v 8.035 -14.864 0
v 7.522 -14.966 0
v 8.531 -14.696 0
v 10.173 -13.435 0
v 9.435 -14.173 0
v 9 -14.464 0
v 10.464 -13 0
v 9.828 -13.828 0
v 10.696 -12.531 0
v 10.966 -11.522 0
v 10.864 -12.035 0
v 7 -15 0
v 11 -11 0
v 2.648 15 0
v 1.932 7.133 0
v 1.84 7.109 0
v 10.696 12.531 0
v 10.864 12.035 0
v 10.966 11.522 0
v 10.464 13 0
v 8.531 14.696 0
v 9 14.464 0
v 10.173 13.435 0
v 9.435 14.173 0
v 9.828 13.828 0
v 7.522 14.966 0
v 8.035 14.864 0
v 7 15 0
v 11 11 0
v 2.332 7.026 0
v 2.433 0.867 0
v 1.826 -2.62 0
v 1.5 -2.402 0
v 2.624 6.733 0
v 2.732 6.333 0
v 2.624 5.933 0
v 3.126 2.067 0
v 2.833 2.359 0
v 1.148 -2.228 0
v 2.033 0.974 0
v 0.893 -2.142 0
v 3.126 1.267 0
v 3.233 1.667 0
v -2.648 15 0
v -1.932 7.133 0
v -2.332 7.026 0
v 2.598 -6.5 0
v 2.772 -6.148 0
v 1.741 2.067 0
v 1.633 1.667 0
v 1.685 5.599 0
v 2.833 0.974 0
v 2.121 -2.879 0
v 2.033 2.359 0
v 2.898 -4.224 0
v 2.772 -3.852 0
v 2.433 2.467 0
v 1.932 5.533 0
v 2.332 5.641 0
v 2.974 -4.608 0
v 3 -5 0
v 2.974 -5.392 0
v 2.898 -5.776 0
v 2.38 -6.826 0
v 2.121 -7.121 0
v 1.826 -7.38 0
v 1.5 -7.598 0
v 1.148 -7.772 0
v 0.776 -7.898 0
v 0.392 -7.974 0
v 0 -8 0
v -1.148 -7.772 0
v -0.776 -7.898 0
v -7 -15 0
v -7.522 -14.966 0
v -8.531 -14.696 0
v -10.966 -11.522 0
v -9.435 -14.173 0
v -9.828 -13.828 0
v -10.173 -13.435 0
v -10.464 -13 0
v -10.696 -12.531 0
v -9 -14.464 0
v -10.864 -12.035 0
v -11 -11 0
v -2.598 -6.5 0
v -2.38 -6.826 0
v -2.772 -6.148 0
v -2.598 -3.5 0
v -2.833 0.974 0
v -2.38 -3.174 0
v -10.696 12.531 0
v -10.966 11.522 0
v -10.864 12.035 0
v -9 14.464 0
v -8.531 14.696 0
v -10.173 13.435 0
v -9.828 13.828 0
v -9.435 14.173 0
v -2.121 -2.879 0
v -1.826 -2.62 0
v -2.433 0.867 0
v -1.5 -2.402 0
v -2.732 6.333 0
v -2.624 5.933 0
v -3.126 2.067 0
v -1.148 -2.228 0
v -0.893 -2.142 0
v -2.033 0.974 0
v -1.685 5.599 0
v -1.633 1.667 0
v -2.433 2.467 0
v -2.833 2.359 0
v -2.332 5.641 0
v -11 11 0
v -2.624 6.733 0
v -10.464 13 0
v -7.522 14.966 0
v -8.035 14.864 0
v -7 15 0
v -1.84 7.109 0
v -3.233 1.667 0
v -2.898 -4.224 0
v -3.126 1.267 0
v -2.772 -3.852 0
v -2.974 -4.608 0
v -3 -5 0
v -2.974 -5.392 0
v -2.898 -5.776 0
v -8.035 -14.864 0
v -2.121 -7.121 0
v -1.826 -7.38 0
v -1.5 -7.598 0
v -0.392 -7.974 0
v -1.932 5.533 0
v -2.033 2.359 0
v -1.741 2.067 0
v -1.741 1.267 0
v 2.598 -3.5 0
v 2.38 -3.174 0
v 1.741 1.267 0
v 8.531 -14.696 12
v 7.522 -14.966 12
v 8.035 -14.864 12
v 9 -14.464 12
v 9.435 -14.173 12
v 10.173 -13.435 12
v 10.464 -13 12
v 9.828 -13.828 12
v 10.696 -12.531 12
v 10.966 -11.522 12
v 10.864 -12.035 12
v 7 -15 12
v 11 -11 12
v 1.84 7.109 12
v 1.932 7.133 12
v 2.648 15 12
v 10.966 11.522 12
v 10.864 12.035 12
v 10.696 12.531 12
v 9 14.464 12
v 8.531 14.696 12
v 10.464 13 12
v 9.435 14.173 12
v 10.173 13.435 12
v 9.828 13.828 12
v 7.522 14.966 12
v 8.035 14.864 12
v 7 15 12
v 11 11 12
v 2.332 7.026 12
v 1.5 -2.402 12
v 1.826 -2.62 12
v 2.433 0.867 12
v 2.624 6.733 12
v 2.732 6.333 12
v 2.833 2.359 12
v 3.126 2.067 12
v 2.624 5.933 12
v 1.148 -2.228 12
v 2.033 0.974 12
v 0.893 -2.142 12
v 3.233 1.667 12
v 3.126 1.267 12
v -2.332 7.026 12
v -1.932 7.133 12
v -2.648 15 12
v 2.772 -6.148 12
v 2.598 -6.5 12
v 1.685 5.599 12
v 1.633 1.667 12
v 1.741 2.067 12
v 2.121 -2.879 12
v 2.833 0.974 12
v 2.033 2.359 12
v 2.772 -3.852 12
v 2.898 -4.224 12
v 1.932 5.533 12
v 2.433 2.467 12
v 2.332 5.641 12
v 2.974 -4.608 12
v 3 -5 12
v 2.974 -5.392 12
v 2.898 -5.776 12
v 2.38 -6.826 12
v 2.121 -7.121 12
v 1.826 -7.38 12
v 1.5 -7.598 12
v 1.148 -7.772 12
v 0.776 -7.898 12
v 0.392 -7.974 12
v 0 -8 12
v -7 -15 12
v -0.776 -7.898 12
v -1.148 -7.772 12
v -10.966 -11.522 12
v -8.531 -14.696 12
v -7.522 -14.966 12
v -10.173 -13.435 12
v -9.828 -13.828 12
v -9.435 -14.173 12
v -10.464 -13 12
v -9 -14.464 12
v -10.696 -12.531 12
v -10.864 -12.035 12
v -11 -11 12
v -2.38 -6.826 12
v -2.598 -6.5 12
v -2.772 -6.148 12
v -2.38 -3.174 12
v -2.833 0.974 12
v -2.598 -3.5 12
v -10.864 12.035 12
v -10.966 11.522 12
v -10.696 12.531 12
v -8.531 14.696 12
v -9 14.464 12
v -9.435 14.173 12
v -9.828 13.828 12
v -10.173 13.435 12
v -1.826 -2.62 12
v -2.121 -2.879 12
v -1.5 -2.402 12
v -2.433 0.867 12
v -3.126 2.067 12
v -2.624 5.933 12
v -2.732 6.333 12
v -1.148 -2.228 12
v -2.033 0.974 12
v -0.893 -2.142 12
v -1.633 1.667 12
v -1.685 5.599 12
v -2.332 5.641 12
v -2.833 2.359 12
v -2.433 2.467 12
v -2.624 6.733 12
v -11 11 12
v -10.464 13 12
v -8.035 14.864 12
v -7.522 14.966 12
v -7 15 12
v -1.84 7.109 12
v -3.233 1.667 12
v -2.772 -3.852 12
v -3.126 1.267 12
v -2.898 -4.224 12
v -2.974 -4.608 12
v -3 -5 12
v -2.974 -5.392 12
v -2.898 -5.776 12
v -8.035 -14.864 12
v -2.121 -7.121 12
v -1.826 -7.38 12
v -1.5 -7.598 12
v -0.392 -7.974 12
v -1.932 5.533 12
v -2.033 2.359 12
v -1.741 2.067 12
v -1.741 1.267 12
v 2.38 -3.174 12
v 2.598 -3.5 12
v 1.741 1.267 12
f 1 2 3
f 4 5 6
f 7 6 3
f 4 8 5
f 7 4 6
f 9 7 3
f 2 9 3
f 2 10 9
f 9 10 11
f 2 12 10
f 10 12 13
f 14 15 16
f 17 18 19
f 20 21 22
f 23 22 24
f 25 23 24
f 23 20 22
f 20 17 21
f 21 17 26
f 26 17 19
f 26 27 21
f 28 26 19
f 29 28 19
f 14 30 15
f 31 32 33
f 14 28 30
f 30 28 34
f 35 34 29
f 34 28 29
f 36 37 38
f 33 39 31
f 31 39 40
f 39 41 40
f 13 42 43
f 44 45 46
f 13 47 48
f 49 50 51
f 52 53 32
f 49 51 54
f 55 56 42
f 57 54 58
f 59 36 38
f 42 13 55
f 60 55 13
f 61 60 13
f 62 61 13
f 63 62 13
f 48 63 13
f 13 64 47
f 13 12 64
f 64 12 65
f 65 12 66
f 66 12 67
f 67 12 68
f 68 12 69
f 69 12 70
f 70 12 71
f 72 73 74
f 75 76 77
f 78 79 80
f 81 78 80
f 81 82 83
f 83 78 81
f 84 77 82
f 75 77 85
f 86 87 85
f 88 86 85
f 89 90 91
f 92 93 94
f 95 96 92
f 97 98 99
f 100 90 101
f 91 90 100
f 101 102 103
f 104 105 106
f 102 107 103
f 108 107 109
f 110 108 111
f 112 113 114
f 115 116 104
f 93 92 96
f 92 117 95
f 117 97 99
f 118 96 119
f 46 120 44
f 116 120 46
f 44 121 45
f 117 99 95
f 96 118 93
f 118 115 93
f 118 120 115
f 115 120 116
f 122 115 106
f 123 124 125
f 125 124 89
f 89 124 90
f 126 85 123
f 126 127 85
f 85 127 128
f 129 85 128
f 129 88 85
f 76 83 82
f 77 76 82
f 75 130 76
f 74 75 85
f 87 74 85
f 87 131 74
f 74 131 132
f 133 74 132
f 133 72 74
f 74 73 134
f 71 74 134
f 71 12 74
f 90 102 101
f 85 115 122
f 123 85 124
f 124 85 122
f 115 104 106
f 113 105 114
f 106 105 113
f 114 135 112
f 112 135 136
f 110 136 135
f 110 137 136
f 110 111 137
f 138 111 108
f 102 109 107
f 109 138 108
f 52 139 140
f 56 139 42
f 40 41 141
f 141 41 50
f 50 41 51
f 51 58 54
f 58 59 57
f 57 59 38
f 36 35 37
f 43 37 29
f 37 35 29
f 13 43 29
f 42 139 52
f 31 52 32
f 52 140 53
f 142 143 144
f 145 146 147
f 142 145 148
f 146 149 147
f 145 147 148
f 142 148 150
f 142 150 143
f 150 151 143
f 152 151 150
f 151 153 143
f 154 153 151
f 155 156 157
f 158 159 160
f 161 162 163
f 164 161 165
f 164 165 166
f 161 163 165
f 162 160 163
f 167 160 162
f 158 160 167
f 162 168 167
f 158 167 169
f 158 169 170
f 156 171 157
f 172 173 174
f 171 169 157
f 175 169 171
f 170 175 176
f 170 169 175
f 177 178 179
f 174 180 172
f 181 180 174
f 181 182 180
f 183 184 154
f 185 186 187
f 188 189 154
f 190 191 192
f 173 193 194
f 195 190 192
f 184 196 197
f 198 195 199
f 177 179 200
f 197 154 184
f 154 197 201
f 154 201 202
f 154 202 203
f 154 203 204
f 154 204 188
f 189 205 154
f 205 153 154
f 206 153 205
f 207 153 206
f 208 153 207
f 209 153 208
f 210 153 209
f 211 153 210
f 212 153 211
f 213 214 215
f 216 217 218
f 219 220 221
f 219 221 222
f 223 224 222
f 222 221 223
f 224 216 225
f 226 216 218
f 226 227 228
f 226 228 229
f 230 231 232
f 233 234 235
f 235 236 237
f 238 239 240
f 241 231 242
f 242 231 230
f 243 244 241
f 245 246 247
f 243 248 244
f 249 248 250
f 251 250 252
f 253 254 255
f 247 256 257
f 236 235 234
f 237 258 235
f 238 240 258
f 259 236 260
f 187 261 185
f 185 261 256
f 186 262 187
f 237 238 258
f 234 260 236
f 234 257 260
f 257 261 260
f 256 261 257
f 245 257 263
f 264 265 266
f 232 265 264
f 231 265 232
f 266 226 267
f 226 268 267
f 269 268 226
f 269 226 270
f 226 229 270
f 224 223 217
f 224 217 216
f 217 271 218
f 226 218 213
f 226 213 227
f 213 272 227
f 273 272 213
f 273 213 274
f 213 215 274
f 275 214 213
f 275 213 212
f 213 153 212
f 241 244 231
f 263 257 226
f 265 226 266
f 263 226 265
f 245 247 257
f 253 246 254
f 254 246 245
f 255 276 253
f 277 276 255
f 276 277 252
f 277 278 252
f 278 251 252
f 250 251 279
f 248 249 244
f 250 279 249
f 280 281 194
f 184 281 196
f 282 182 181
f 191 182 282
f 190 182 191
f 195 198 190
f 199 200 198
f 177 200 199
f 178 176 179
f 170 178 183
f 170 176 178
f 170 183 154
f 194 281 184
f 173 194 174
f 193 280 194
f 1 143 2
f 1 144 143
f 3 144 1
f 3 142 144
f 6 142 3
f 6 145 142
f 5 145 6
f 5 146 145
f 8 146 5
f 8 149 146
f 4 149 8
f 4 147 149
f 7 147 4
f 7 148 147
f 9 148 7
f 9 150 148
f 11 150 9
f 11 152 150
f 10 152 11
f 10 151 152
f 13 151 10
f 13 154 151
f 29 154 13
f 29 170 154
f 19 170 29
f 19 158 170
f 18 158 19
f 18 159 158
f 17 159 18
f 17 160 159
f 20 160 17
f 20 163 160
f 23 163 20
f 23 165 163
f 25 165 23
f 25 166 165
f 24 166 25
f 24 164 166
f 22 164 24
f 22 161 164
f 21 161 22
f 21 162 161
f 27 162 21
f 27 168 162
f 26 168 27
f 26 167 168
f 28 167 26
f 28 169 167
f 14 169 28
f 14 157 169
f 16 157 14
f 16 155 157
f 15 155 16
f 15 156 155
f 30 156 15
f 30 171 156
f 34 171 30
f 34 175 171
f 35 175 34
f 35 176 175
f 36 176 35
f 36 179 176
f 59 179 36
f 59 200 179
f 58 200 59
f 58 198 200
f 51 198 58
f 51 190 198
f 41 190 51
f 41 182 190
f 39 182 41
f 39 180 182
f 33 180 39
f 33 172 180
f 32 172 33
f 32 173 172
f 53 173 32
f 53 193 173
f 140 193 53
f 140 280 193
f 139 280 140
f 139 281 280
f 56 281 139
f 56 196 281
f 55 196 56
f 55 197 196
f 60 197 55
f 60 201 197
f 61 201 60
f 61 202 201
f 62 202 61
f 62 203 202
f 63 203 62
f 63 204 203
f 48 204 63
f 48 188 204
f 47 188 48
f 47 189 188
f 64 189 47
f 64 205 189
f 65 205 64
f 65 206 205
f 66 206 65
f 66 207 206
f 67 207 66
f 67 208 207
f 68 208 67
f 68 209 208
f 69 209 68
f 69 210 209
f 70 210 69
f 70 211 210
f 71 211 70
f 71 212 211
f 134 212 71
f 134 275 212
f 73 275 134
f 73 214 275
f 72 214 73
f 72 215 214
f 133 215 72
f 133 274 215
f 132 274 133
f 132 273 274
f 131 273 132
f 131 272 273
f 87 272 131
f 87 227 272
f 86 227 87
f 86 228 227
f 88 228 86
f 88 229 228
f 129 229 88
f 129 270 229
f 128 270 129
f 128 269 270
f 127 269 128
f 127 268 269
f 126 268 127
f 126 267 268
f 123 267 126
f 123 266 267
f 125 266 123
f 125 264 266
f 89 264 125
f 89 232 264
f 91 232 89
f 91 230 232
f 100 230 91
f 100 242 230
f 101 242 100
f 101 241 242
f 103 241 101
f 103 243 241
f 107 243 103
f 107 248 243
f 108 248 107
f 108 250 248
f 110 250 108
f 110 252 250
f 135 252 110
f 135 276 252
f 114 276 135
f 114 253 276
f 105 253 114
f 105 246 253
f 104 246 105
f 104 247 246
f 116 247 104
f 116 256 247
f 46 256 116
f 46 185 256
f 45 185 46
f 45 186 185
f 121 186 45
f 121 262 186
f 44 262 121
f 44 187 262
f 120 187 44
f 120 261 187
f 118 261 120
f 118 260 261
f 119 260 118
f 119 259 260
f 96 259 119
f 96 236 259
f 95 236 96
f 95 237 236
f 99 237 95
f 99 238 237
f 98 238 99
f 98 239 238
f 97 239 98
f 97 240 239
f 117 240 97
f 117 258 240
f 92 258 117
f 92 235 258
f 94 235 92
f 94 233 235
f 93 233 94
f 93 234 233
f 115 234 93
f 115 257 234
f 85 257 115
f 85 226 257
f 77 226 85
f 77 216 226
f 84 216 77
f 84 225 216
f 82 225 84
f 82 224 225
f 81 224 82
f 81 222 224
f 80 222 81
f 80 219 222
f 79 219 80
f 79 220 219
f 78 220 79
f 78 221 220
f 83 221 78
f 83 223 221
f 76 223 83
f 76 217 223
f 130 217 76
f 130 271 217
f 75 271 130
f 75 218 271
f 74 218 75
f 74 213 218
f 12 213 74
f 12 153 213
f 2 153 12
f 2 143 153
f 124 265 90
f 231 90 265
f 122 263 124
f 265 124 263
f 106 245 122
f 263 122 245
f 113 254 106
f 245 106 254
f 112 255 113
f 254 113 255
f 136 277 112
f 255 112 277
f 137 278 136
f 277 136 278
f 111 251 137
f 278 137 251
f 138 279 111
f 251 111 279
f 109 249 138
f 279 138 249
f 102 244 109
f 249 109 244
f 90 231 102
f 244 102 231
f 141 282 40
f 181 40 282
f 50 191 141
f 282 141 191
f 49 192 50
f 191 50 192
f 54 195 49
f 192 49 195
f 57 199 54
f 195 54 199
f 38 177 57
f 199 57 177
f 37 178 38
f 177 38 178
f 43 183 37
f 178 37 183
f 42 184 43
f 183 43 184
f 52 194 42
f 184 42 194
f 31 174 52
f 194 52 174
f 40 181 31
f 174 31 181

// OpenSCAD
// bagclip_squeeze — a single-piece C-clamp. Push the bag's folded top into the
// tapered mouth; the two sprung arms spread and the inner teeth grip, the curved
// back acts as the spring. COMPLIANT — flexes every use, so print in PETG/TPU for
// fatigue life; PLA works but can crack at the throat over time.
// Prints flat, support-free (profile extruded along Z).

clip_w   = 12;     // width along the bag edge (Z)
body_x   = 22;     // overall X
body_h   = 30;     // overall Y
corner   = 4;      // outer corner radius
mouth_top= 5.5;    // mouth opening width at the top (easy start)
mouth_bot= 1.2;    // mouth width at the throat (grip)
mouth_d  = 20;     // mouth depth (down from the top)
throat_d = 6;      // stress-relief circle at the bottom of the mouth
n_teeth  = 3;      // grip teeth per arm
tooth    = 0.8;    // tooth protrusion

$fn = 48;

module rrect(w, d, r) { offset(r) offset(-r) square([w, d], center=true); }

module clip2d() {
  difference() {
    rrect(body_x, body_h, corner);
    // tapered mouth (wide at top, narrow at the throat)
    polygon([[-mouth_top/2,  body_h/2 + 1],
             [ mouth_top/2,  body_h/2 + 1],
             [ mouth_bot/2,  body_h/2 - mouth_d],
             [-mouth_bot/2,  body_h/2 - mouth_d]]);
    // throat stress-relief circle (keeps the spring from cracking)
    translate([0, body_h/2 - mouth_d]) circle(d = throat_d);
    // grip teeth: notch the inner faces so a few ridges bite the bag
    for (i = [0 : n_teeth-1]) {
      y = body_h/2 - 4 - i * (mouth_d - 6) / n_teeth;
      w = mouth_bot + (mouth_top - mouth_bot) * (body_h/2 - y) / mouth_d;
      for (s = [-1, 1])
        translate([s * (w/2 + tooth/2), y]) circle(d = tooth*2, $fn = 12);
    }
  }
}

linear_extrude(clip_w) clip2d();
